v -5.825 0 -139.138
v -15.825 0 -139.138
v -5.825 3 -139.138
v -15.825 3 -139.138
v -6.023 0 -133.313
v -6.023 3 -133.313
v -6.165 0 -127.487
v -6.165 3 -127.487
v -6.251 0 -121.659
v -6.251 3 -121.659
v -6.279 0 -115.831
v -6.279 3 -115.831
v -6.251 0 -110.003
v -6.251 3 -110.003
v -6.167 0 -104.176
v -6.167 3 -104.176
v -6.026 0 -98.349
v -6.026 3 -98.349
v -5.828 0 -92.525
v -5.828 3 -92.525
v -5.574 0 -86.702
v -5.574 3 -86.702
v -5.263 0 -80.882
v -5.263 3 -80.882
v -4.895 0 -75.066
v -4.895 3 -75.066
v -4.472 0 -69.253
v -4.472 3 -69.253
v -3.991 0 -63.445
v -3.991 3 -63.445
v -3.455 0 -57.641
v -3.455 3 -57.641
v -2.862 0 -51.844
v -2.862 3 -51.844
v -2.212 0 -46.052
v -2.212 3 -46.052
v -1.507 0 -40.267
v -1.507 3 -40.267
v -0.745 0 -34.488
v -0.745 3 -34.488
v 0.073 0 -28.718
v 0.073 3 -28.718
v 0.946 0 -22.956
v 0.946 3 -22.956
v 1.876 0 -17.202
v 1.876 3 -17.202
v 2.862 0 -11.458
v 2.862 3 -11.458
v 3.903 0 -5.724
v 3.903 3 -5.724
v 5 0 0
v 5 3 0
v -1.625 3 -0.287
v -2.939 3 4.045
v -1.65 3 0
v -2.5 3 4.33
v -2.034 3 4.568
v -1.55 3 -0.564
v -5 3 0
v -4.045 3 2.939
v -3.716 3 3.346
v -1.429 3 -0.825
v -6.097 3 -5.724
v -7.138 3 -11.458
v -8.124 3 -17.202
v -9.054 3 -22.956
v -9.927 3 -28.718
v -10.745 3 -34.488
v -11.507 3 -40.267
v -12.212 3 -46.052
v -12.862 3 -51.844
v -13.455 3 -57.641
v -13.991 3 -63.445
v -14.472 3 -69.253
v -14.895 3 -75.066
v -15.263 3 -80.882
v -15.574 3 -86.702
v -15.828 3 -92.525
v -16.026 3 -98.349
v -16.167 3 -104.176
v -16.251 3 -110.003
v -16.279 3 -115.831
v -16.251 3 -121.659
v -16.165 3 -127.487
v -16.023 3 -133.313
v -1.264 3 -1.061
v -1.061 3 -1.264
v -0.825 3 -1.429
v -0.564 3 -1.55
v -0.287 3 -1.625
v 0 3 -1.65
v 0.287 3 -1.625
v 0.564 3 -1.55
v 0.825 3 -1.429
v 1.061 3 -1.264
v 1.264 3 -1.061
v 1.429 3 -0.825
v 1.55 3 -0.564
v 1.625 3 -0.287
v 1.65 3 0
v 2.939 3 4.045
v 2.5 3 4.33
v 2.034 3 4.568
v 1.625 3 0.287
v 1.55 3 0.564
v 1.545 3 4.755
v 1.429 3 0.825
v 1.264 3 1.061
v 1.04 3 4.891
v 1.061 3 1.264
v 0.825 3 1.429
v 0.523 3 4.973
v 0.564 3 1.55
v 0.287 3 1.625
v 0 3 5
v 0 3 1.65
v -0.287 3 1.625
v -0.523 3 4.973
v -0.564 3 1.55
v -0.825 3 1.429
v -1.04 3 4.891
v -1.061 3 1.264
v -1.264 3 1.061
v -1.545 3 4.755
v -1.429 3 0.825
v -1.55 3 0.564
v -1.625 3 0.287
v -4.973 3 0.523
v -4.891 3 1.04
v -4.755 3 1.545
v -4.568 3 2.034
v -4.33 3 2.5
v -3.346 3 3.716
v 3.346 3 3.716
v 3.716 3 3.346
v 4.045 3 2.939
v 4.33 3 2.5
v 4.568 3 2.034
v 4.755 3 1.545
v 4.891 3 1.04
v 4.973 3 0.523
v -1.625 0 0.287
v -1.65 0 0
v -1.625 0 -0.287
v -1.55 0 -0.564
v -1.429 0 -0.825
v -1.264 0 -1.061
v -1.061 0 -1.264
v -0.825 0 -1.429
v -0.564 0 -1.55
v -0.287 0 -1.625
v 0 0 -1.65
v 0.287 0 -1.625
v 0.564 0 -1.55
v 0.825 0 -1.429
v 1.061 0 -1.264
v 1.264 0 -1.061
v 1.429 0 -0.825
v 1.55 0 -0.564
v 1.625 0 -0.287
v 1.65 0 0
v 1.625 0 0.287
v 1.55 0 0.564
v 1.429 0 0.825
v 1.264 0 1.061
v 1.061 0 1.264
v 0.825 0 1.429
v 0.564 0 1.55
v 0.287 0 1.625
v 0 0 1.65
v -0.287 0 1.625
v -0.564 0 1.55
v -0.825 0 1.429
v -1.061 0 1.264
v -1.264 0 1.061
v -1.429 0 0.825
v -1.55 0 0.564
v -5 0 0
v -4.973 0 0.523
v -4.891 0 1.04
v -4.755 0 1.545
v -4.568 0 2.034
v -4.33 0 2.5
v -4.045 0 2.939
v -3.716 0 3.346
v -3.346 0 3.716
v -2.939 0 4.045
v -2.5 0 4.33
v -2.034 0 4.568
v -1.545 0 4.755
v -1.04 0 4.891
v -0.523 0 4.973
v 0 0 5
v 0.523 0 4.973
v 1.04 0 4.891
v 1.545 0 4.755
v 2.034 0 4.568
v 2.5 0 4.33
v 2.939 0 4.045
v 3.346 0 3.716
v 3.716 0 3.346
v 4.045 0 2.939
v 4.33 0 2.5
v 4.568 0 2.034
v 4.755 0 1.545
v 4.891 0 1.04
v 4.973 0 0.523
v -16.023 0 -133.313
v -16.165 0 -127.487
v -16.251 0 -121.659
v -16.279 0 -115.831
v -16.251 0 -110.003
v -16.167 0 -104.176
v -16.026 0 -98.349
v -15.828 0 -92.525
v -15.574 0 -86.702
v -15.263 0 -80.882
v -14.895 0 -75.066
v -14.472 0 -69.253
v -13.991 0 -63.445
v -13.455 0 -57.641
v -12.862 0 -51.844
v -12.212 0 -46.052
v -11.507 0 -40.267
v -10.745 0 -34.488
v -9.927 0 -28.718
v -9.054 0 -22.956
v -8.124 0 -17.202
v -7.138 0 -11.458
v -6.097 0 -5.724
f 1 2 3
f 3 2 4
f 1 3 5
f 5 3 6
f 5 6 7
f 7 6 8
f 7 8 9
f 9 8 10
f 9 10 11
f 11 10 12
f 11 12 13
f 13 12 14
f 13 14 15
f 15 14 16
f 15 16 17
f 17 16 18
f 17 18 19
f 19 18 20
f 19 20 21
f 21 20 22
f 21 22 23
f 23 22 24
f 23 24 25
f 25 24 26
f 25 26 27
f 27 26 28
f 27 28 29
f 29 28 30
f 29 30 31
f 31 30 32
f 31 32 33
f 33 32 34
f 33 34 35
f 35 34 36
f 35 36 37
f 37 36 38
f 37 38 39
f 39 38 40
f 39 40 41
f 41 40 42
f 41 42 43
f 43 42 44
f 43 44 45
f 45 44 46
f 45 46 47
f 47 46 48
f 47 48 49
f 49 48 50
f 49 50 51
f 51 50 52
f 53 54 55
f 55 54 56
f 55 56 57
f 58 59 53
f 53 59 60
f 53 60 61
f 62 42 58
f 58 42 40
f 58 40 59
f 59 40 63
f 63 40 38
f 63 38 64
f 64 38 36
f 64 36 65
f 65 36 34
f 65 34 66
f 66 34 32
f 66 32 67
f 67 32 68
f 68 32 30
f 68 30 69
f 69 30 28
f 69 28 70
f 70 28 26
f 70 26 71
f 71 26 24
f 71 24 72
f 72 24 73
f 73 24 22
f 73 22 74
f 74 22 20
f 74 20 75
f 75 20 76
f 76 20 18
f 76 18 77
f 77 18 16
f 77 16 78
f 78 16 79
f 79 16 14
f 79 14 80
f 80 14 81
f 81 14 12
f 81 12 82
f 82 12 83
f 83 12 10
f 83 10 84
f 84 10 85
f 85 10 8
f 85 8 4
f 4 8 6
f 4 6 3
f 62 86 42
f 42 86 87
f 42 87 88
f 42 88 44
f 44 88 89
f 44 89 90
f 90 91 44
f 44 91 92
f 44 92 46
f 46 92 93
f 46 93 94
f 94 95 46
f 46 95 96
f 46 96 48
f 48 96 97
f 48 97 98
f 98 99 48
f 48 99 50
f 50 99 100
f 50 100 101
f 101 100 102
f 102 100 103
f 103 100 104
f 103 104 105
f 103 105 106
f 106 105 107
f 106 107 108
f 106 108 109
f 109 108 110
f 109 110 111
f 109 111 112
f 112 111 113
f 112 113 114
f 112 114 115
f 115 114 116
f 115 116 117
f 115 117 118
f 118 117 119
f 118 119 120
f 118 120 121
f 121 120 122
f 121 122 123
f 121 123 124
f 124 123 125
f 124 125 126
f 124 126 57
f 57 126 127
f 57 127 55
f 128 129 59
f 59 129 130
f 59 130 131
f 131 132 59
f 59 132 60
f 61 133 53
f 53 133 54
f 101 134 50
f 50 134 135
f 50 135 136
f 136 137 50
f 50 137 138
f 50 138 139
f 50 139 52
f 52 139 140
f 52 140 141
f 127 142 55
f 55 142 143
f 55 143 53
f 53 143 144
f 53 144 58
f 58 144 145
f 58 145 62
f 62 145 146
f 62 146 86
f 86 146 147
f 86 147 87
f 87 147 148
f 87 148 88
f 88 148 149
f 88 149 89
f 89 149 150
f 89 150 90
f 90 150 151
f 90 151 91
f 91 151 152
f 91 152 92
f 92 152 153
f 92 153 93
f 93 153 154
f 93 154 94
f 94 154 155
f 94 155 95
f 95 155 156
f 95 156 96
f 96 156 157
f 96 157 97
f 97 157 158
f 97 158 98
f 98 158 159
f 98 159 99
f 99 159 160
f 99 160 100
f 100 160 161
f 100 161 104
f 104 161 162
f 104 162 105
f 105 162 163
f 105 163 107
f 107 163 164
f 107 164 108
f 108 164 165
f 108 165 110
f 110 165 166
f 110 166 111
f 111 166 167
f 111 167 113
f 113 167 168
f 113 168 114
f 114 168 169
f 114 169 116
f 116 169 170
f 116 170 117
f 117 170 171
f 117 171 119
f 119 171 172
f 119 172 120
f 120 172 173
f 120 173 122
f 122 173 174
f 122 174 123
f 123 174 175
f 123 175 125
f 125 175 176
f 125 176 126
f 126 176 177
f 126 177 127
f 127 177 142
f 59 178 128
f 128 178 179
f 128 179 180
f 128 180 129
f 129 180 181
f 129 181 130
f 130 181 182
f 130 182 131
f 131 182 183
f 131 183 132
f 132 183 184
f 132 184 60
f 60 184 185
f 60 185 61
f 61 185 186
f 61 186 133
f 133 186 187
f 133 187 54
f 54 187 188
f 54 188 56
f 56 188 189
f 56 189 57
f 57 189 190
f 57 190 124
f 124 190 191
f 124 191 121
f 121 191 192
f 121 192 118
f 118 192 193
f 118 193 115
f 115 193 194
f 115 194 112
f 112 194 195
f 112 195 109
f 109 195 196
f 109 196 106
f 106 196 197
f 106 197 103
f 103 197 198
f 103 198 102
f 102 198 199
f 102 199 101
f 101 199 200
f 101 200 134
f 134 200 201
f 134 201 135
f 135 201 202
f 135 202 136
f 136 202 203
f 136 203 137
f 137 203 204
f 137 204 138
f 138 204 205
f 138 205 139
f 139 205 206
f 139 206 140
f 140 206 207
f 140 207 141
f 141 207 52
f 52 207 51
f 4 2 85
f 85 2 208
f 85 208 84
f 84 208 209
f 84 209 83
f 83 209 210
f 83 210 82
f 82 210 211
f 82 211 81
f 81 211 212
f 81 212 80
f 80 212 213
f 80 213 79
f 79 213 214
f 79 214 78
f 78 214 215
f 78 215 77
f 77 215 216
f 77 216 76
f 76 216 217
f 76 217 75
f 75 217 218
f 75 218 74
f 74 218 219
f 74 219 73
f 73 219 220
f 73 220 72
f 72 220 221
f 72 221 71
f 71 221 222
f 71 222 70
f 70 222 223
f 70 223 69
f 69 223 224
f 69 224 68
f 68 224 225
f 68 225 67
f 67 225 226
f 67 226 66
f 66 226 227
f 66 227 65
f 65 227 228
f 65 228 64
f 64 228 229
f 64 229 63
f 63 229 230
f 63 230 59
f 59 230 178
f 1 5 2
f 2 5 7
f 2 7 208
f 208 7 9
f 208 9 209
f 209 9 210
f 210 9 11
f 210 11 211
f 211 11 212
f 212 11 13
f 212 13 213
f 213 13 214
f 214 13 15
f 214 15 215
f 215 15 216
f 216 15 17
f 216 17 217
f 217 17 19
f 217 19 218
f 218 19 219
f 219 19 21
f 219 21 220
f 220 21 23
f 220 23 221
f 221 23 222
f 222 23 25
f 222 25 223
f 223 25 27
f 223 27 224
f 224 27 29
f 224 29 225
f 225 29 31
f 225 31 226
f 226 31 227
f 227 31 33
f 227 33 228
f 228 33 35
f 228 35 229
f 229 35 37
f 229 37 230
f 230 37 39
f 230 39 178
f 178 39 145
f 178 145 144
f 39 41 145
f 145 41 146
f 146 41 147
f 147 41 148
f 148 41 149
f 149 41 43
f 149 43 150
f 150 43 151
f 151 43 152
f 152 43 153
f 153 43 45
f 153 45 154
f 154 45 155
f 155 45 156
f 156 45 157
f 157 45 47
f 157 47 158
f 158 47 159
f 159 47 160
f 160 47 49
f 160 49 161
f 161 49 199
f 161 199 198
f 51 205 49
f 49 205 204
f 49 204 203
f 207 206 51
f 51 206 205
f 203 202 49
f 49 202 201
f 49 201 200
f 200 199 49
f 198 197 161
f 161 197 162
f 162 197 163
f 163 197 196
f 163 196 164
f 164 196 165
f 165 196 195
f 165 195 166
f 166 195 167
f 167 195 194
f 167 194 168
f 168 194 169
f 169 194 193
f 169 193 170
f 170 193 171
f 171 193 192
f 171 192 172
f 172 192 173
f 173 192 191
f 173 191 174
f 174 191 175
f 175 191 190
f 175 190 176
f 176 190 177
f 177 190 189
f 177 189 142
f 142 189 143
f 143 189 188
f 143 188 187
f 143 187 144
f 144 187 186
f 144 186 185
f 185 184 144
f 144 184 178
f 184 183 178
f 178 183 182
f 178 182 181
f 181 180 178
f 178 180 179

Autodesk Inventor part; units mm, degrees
ref_plane "YZ Plane" through (0, 0, 0) normal (1, 0, 0) x (0, 1, 0)
ref_plane "XZ Plane" through (0, 0, 0) normal (0, 1, 0) x (-1, 0, 0)
ref_plane "XY Plane" through (0, 0, 0) normal (0, 0, 1) x (1, 0, 0)
sketch "Sketch1" plane through (0, 0, 0) normal (0, 1, 0) x (-1, 0, 0)
  line L0 (0, 0) -> (0, -288.984) construction
  line L1 (5, 0) -> (5, -288.984)
  line L2 (-5, -288.984) -> (-5, 0)
  arc A0 (5, 0) -> (-5, 0) centre (0, 0) ccw
  arc A1 (-5, -288.984) -> (5, -288.984) centre (0, -288.984) ccw
  circle A2 centre (0, 0) radius 1.65
  circle A3 centre (0, -288.984) radius 1.65
  circle A4 centre (0, -231.585) radius 1.65
  arc A5 (-5, -231.585) -> (-5, 0) centre (-593.7207, -115.7925) ccw
  arc A6 (5, -231.585) -> (5, 0) centre (-583.7207, -115.7925) ccw
  point P0 (0, -144.492)
  dimension "d0" = 3.3
  dimension "d1" = 3.3
  dimension "d2" = 10
  dimension "d3" = 288.984
  dimension "d14" = 3.3
  dimension "d15" = 231.585
  dimension "d18" = 600
  dimension "d19" = 600
extrude "Extrusion1" add sketch "Sketch1" along normal blind 3 contours L1 A1 L2 A5 | L1 A5 A6 | L1 A5 A0
sketch "Sketch2" plane through (0, 3, 0) normal (0, 1, 0) x (1, 0, 0)
  line L0 (-27.7109, 299.4385) -> (14.5069, 299.4385)
  line L1 (14.5069, 299.4385) -> (14.5069, 139.1377)
  line L2 (14.5069, 139.1377) -> (-27.7109, 139.1377)
  line L3 (-27.7109, 139.1377) -> (-27.7109, 299.4385)
  line L4 (-101.0366, 321.0236) -> (54.5028, 321.0236)
  line L5 (54.5028, 321.0236) -> (54.5028, -14.1796)
  line L6 (54.5028, -14.1796) -> (-101.0366, -14.1796)
  line L7 (-101.0366, -14.1796) -> (-101.0366, 321.0236)
  point P0 (0, 0)
extrude "Extrusion2" cut sketch "Sketch2" against normal blind 10 contours L0 L1 L2 L3
properties part number "Part_7_p1"
